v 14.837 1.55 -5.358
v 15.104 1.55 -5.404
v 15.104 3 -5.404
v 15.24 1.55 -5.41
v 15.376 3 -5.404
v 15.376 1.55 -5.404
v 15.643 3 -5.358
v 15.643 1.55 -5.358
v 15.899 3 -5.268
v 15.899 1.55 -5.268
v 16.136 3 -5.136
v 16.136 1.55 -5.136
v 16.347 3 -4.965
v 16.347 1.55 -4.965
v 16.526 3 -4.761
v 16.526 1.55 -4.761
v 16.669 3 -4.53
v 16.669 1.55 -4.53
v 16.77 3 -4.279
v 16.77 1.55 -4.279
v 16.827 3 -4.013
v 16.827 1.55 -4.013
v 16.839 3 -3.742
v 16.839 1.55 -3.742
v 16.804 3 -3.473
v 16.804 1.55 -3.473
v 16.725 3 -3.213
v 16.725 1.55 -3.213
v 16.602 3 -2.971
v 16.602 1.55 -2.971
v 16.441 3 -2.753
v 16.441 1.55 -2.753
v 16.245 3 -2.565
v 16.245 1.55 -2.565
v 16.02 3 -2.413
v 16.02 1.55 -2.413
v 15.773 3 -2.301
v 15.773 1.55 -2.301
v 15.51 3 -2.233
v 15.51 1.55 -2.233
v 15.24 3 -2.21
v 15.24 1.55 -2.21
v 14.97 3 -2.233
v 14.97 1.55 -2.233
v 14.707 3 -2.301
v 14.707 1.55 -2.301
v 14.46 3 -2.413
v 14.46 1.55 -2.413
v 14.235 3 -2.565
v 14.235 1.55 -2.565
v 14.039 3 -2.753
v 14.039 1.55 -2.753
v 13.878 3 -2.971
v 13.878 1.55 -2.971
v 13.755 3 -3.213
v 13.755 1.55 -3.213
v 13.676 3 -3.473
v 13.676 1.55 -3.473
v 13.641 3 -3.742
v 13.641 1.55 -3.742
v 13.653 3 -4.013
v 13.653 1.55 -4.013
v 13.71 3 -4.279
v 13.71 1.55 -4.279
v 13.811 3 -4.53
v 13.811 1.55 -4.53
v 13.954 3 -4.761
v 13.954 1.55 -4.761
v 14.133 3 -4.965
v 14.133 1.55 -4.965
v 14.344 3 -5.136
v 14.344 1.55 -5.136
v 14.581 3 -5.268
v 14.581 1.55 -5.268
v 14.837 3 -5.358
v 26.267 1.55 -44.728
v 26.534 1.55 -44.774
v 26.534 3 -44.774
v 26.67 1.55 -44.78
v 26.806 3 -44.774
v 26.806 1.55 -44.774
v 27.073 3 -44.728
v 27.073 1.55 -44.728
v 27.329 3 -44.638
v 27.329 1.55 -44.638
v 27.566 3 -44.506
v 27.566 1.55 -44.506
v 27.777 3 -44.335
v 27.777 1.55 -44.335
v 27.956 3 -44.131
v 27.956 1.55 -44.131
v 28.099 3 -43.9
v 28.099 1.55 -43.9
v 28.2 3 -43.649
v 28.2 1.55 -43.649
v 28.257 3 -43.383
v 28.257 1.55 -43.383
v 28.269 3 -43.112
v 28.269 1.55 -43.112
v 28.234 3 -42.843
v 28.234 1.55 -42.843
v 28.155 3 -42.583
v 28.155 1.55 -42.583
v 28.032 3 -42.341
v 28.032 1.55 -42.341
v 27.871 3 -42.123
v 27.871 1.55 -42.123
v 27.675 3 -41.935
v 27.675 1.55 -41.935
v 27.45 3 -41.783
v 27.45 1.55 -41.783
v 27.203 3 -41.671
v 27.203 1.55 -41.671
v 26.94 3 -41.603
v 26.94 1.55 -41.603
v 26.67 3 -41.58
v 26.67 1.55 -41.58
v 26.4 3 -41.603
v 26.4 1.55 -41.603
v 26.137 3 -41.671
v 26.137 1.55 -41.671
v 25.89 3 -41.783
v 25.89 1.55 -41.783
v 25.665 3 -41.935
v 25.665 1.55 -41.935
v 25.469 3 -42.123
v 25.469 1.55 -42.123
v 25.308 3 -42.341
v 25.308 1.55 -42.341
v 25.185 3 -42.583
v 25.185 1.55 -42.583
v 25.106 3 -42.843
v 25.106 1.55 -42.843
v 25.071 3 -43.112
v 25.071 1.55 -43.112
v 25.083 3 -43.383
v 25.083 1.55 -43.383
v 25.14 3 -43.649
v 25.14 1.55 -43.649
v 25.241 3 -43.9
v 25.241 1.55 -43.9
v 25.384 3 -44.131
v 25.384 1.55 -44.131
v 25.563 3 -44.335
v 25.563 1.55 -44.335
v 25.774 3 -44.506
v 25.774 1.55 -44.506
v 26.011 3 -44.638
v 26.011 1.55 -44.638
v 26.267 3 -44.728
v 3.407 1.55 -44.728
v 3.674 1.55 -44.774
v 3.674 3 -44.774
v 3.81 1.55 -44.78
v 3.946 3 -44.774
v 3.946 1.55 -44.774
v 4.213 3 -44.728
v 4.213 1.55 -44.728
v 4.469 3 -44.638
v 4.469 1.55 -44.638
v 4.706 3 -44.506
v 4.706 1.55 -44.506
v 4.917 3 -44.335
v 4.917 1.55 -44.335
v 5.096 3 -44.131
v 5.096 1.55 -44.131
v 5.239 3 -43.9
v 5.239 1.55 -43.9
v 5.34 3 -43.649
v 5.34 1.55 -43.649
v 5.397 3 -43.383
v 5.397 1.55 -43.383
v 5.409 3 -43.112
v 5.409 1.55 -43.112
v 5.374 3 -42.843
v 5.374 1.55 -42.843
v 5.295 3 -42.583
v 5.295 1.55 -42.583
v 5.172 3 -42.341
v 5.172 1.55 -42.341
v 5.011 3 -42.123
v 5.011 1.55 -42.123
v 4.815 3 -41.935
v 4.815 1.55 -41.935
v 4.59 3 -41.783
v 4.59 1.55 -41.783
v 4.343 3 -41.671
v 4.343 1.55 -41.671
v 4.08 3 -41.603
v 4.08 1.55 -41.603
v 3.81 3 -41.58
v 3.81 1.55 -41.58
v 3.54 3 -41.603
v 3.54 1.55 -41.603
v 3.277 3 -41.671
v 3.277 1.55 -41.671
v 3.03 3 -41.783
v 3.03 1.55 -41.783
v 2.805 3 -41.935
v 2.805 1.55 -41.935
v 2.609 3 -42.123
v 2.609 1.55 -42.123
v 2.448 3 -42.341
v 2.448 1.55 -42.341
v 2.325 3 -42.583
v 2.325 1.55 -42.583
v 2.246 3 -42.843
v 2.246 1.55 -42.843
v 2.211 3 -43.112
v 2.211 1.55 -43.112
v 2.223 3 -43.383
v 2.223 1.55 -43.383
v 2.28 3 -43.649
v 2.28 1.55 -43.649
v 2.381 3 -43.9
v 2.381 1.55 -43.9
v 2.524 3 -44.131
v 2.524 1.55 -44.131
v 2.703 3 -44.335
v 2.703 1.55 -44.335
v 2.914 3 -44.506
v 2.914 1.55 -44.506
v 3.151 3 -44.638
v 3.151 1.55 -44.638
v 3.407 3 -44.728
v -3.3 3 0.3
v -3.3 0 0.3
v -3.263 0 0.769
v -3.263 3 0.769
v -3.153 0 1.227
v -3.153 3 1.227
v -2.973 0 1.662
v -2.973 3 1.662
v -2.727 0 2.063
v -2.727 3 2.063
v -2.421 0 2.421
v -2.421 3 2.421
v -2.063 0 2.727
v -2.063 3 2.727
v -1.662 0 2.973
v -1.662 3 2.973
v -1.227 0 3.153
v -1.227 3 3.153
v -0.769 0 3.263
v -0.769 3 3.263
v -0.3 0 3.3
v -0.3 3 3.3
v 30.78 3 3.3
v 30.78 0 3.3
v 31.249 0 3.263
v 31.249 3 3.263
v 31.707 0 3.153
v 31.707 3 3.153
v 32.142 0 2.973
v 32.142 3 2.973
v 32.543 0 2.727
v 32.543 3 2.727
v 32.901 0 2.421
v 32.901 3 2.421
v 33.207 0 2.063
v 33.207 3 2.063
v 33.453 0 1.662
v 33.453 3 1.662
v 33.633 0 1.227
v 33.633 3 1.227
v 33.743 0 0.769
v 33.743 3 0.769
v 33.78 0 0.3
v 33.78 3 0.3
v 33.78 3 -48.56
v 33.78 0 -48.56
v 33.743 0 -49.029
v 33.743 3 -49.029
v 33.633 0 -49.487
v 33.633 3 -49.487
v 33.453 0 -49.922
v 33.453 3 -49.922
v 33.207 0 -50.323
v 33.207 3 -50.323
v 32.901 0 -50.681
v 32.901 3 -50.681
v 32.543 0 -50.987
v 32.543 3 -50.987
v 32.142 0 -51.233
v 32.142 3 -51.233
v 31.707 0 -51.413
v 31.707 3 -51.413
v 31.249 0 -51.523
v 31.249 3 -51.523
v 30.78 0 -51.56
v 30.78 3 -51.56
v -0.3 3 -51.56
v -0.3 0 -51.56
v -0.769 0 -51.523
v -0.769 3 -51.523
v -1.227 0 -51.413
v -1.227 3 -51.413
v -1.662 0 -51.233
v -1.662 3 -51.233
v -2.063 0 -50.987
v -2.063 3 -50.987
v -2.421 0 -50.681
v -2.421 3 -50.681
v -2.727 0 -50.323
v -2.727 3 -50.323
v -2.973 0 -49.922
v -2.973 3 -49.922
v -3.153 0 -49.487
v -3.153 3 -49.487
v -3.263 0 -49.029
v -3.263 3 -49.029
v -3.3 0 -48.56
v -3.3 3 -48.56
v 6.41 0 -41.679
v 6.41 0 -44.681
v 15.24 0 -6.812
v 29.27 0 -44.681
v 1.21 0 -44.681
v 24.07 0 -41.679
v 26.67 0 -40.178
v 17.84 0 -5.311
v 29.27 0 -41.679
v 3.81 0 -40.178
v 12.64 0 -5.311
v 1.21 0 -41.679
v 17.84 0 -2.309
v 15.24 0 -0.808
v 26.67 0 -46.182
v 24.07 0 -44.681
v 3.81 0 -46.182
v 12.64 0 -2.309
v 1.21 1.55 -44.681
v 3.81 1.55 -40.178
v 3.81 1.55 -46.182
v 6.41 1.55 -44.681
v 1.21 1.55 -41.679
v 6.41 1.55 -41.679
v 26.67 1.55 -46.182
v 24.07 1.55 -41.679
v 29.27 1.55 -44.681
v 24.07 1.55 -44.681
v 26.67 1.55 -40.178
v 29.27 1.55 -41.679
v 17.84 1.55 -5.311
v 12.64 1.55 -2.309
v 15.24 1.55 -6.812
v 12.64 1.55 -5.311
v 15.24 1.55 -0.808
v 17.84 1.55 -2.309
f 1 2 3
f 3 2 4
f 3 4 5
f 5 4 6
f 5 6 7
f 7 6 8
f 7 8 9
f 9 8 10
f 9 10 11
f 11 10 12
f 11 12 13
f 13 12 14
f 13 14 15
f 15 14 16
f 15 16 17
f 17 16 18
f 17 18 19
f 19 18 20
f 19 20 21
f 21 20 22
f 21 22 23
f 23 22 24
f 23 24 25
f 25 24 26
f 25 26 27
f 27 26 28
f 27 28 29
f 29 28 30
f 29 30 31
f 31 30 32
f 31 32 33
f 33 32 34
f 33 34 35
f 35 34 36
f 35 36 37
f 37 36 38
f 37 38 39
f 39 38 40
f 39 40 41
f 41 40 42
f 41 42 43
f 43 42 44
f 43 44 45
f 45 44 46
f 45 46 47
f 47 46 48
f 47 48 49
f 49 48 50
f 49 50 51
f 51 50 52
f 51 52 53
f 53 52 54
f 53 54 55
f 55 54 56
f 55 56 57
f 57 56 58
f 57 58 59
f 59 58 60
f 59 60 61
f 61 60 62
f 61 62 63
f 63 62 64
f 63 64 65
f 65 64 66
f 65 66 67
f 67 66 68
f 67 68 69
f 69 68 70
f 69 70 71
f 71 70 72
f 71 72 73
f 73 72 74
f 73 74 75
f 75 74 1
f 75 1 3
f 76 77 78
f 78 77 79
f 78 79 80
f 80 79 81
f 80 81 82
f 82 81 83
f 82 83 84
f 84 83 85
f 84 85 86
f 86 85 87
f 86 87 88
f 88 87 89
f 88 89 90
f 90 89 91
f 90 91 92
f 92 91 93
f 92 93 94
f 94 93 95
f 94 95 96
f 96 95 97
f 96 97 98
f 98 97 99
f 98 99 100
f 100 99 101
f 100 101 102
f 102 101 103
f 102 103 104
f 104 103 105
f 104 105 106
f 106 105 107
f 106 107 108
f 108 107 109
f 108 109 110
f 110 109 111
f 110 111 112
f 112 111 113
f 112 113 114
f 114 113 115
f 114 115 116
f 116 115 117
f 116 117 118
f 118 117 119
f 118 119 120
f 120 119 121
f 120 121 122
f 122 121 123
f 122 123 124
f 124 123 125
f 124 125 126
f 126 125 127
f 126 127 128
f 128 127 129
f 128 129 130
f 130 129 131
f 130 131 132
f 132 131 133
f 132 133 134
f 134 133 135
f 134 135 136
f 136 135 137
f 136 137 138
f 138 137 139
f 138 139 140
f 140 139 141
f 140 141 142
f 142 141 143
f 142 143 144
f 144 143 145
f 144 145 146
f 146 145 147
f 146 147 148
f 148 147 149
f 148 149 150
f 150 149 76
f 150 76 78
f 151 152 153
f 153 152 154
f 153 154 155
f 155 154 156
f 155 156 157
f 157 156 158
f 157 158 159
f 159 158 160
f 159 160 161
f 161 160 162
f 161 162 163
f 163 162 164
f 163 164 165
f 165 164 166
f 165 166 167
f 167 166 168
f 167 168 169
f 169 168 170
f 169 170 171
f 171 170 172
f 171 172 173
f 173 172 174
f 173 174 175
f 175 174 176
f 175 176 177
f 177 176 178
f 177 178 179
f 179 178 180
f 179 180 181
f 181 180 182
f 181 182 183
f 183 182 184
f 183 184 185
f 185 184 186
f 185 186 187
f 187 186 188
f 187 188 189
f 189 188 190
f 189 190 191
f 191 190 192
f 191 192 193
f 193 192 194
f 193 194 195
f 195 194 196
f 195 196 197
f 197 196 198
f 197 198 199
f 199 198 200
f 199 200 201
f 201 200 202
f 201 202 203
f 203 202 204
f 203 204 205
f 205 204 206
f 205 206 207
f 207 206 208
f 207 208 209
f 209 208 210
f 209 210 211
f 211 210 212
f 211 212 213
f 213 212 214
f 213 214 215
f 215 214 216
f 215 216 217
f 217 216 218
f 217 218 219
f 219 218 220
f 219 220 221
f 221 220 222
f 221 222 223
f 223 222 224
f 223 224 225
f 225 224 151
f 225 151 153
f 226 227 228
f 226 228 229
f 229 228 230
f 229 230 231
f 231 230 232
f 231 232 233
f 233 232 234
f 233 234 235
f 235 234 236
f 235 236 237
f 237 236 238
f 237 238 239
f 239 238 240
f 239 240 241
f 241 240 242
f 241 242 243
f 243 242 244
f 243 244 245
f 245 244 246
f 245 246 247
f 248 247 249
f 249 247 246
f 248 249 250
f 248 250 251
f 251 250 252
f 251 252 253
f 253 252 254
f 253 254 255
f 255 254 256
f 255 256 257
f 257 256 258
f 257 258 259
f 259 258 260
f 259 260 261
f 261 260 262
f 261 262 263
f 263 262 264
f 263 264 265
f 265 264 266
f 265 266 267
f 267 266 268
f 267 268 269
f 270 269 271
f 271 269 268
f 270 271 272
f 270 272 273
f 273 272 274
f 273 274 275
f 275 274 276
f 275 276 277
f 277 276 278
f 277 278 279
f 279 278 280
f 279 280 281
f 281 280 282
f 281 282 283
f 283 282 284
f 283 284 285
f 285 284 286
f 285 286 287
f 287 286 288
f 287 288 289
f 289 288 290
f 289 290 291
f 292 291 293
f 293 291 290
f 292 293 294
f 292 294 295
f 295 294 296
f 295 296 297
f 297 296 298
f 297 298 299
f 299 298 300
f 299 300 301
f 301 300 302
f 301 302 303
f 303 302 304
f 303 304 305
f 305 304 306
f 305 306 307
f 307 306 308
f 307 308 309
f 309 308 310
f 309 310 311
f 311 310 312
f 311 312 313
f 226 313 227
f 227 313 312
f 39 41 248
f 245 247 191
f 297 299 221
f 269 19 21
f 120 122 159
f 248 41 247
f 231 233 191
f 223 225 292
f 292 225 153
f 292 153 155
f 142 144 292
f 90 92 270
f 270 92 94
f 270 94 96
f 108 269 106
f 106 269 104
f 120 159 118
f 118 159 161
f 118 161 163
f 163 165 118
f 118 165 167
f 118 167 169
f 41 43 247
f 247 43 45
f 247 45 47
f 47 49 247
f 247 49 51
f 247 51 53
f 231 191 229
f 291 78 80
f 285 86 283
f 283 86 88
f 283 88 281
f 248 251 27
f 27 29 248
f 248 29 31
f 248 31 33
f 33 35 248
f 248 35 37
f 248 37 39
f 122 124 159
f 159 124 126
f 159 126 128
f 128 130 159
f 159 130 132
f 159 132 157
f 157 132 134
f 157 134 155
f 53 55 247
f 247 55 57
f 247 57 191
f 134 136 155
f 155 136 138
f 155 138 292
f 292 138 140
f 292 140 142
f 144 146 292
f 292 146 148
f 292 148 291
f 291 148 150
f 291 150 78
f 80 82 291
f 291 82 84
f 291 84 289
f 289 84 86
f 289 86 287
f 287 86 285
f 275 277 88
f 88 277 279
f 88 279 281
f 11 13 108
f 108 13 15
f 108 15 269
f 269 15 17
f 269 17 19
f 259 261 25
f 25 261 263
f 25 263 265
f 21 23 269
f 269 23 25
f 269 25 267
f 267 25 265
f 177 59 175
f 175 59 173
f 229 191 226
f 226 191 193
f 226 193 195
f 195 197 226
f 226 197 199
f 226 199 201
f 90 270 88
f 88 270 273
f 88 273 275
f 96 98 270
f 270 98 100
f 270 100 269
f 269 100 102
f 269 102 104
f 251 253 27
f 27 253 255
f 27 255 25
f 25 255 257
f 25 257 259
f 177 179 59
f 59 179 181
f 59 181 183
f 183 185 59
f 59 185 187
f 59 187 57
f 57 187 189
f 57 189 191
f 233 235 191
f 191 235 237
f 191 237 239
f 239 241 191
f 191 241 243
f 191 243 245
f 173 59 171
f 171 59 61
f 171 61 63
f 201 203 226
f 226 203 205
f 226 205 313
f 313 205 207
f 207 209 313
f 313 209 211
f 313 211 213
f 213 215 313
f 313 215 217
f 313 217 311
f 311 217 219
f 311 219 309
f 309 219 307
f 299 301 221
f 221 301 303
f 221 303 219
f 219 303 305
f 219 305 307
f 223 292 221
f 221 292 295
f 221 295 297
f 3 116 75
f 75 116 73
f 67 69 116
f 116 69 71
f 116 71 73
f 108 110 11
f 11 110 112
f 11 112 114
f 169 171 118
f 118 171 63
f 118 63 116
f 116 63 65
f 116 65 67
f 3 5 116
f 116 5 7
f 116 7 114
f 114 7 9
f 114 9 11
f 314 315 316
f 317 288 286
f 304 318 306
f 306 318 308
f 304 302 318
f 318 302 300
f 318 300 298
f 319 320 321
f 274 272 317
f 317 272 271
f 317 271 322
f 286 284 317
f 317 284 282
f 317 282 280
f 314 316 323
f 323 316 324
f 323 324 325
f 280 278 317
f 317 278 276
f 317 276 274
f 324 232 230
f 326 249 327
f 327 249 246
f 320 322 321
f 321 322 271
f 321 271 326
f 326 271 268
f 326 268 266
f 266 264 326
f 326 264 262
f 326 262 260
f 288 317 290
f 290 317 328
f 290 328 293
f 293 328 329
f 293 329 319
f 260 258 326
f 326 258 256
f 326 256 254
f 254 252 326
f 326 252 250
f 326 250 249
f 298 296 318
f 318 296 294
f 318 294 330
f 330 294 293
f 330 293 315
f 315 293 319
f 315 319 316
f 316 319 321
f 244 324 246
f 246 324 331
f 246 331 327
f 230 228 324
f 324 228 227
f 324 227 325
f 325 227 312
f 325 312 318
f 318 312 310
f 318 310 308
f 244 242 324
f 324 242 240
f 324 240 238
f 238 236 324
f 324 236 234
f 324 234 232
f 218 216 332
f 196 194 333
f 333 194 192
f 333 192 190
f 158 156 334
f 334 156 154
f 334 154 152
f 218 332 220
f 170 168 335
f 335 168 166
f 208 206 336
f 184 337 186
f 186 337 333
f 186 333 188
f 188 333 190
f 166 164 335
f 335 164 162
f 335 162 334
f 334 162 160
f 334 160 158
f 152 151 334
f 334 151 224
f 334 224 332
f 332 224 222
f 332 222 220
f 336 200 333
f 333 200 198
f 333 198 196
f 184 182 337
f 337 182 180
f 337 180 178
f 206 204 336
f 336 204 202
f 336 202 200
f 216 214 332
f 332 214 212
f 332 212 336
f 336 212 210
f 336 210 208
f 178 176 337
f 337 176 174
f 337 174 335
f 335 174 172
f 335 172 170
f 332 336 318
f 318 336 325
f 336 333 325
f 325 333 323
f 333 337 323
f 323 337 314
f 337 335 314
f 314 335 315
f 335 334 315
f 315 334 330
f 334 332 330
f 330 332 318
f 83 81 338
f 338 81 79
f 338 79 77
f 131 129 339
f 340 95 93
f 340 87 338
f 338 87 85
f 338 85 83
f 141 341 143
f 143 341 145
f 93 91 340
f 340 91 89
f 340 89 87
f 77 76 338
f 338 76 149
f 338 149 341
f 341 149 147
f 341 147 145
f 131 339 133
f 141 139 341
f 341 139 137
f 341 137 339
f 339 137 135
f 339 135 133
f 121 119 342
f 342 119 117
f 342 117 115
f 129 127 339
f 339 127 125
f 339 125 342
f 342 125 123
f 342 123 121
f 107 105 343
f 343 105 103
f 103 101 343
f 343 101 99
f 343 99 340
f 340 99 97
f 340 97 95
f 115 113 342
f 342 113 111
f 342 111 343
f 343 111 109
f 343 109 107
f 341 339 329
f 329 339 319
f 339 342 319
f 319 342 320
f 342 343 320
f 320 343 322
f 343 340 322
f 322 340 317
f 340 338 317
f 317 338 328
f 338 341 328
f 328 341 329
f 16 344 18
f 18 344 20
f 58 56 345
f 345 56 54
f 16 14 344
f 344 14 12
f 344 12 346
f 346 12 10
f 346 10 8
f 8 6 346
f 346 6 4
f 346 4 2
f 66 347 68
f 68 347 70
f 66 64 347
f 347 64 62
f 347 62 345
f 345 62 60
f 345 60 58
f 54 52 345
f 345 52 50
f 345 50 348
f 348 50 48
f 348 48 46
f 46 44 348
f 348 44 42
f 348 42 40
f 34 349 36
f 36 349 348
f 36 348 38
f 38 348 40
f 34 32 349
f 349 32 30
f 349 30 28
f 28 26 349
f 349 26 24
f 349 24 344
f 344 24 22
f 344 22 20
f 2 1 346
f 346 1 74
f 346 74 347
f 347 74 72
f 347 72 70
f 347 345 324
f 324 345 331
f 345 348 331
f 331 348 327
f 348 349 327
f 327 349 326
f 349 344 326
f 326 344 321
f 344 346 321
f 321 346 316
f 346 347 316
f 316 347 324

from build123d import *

# Parameters (mm, degrees)
BOSS_EXTRUDE1_DEPTH     = 3
CUT_EXTRUDE4_DEPTH      = 62.713223867
CUT_EXTRUDE4_DEPTH_BACK = 62.713223867
SKETCH2_R               = 1.6
CUT_EXTRUDE8_DEPTH      = 1.55


with BuildPart() as part:
    # Sketch1 → Boss-Extrude1 (new body)
    with BuildSketch(Plane(origin=(0, 0, 0), x_dir=(1, 0, 0), z_dir=(0, 1, 0))):
        with BuildLine():
            Line((-3.3, -0.3), (-3.3, 48.56))
            ThreePointArc((-3.3, 48.56), (-2.421320344, 50.681320344), (-0.3, 51.56))
            Line((-0.3, 51.56), (30.78, 51.56))
            ThreePointArc((30.78, 51.56), (32.901320344, 50.681320344), (33.78, 48.56))
            Line((33.78, 48.56), (33.78, -0.3))
            ThreePointArc((33.78, -0.3), (32.901320344, -2.421320344), (30.78, -3.3))
            Line((30.78, -3.3), (-0.3, -3.3))
            ThreePointArc((-0.3, -3.3), (-2.421320344, -2.421320344), (-3.3, -0.3))
        make_face()
    extrude(amount=BOSS_EXTRUDE1_DEPTH)

    # Sketch2 → Cut-Extrude4 (cut, two sides: drawn at the far end of the back side and taken through both)
    with BuildSketch(Plane(origin=(0, 0, 0), x_dir=(1, 0, 0), z_dir=(0, 1, 0)).offset(-CUT_EXTRUDE4_DEPTH_BACK)):
        with Locations(Location((3.81, 43.18, 0), (0, 0, 270))):
            Circle(SKETCH2_R)
        with Locations(Location((26.67, 43.18, 0), (0, 0, 270))):
            Circle(SKETCH2_R)
        with Locations(Location((15.24, 3.81, 0), (0, 0, 270))):
            Circle(SKETCH2_R)
    extrude(amount=CUT_EXTRUDE4_DEPTH + CUT_EXTRUDE4_DEPTH_BACK, mode=Mode.SUBTRACT)

    # Sketch10 → Cut-Extrude8 (cut)
    with BuildSketch(Plane(origin=(0, 0, 0), x_dir=(-1, 0, 0), z_dir=(0, -1, 0))):
        Polygon((-1.21, 44.6811107), (-3.81, 46.1822214), (-6.41, 44.6811107), (-6.41, 41.6788893), (-3.81, 40.1777786), (-1.21, 41.6788893), align=None)
        Polygon((-24.07, 44.6811107), (-26.67, 46.1822214), (-29.27, 44.6811107), (-29.27, 41.6788893), (-26.67, 40.1777786), (-24.07, 41.6788893), align=None)
        Polygon((-12.64, 5.3111107), (-15.24, 6.8122214), (-17.84, 5.3111107), (-17.84, 2.3088893), (-15.24, 0.8077786), (-12.64, 2.3088893), align=None)
    extrude(amount=-CUT_EXTRUDE8_DEPTH, mode=Mode.SUBTRACT)


solid = part.part
